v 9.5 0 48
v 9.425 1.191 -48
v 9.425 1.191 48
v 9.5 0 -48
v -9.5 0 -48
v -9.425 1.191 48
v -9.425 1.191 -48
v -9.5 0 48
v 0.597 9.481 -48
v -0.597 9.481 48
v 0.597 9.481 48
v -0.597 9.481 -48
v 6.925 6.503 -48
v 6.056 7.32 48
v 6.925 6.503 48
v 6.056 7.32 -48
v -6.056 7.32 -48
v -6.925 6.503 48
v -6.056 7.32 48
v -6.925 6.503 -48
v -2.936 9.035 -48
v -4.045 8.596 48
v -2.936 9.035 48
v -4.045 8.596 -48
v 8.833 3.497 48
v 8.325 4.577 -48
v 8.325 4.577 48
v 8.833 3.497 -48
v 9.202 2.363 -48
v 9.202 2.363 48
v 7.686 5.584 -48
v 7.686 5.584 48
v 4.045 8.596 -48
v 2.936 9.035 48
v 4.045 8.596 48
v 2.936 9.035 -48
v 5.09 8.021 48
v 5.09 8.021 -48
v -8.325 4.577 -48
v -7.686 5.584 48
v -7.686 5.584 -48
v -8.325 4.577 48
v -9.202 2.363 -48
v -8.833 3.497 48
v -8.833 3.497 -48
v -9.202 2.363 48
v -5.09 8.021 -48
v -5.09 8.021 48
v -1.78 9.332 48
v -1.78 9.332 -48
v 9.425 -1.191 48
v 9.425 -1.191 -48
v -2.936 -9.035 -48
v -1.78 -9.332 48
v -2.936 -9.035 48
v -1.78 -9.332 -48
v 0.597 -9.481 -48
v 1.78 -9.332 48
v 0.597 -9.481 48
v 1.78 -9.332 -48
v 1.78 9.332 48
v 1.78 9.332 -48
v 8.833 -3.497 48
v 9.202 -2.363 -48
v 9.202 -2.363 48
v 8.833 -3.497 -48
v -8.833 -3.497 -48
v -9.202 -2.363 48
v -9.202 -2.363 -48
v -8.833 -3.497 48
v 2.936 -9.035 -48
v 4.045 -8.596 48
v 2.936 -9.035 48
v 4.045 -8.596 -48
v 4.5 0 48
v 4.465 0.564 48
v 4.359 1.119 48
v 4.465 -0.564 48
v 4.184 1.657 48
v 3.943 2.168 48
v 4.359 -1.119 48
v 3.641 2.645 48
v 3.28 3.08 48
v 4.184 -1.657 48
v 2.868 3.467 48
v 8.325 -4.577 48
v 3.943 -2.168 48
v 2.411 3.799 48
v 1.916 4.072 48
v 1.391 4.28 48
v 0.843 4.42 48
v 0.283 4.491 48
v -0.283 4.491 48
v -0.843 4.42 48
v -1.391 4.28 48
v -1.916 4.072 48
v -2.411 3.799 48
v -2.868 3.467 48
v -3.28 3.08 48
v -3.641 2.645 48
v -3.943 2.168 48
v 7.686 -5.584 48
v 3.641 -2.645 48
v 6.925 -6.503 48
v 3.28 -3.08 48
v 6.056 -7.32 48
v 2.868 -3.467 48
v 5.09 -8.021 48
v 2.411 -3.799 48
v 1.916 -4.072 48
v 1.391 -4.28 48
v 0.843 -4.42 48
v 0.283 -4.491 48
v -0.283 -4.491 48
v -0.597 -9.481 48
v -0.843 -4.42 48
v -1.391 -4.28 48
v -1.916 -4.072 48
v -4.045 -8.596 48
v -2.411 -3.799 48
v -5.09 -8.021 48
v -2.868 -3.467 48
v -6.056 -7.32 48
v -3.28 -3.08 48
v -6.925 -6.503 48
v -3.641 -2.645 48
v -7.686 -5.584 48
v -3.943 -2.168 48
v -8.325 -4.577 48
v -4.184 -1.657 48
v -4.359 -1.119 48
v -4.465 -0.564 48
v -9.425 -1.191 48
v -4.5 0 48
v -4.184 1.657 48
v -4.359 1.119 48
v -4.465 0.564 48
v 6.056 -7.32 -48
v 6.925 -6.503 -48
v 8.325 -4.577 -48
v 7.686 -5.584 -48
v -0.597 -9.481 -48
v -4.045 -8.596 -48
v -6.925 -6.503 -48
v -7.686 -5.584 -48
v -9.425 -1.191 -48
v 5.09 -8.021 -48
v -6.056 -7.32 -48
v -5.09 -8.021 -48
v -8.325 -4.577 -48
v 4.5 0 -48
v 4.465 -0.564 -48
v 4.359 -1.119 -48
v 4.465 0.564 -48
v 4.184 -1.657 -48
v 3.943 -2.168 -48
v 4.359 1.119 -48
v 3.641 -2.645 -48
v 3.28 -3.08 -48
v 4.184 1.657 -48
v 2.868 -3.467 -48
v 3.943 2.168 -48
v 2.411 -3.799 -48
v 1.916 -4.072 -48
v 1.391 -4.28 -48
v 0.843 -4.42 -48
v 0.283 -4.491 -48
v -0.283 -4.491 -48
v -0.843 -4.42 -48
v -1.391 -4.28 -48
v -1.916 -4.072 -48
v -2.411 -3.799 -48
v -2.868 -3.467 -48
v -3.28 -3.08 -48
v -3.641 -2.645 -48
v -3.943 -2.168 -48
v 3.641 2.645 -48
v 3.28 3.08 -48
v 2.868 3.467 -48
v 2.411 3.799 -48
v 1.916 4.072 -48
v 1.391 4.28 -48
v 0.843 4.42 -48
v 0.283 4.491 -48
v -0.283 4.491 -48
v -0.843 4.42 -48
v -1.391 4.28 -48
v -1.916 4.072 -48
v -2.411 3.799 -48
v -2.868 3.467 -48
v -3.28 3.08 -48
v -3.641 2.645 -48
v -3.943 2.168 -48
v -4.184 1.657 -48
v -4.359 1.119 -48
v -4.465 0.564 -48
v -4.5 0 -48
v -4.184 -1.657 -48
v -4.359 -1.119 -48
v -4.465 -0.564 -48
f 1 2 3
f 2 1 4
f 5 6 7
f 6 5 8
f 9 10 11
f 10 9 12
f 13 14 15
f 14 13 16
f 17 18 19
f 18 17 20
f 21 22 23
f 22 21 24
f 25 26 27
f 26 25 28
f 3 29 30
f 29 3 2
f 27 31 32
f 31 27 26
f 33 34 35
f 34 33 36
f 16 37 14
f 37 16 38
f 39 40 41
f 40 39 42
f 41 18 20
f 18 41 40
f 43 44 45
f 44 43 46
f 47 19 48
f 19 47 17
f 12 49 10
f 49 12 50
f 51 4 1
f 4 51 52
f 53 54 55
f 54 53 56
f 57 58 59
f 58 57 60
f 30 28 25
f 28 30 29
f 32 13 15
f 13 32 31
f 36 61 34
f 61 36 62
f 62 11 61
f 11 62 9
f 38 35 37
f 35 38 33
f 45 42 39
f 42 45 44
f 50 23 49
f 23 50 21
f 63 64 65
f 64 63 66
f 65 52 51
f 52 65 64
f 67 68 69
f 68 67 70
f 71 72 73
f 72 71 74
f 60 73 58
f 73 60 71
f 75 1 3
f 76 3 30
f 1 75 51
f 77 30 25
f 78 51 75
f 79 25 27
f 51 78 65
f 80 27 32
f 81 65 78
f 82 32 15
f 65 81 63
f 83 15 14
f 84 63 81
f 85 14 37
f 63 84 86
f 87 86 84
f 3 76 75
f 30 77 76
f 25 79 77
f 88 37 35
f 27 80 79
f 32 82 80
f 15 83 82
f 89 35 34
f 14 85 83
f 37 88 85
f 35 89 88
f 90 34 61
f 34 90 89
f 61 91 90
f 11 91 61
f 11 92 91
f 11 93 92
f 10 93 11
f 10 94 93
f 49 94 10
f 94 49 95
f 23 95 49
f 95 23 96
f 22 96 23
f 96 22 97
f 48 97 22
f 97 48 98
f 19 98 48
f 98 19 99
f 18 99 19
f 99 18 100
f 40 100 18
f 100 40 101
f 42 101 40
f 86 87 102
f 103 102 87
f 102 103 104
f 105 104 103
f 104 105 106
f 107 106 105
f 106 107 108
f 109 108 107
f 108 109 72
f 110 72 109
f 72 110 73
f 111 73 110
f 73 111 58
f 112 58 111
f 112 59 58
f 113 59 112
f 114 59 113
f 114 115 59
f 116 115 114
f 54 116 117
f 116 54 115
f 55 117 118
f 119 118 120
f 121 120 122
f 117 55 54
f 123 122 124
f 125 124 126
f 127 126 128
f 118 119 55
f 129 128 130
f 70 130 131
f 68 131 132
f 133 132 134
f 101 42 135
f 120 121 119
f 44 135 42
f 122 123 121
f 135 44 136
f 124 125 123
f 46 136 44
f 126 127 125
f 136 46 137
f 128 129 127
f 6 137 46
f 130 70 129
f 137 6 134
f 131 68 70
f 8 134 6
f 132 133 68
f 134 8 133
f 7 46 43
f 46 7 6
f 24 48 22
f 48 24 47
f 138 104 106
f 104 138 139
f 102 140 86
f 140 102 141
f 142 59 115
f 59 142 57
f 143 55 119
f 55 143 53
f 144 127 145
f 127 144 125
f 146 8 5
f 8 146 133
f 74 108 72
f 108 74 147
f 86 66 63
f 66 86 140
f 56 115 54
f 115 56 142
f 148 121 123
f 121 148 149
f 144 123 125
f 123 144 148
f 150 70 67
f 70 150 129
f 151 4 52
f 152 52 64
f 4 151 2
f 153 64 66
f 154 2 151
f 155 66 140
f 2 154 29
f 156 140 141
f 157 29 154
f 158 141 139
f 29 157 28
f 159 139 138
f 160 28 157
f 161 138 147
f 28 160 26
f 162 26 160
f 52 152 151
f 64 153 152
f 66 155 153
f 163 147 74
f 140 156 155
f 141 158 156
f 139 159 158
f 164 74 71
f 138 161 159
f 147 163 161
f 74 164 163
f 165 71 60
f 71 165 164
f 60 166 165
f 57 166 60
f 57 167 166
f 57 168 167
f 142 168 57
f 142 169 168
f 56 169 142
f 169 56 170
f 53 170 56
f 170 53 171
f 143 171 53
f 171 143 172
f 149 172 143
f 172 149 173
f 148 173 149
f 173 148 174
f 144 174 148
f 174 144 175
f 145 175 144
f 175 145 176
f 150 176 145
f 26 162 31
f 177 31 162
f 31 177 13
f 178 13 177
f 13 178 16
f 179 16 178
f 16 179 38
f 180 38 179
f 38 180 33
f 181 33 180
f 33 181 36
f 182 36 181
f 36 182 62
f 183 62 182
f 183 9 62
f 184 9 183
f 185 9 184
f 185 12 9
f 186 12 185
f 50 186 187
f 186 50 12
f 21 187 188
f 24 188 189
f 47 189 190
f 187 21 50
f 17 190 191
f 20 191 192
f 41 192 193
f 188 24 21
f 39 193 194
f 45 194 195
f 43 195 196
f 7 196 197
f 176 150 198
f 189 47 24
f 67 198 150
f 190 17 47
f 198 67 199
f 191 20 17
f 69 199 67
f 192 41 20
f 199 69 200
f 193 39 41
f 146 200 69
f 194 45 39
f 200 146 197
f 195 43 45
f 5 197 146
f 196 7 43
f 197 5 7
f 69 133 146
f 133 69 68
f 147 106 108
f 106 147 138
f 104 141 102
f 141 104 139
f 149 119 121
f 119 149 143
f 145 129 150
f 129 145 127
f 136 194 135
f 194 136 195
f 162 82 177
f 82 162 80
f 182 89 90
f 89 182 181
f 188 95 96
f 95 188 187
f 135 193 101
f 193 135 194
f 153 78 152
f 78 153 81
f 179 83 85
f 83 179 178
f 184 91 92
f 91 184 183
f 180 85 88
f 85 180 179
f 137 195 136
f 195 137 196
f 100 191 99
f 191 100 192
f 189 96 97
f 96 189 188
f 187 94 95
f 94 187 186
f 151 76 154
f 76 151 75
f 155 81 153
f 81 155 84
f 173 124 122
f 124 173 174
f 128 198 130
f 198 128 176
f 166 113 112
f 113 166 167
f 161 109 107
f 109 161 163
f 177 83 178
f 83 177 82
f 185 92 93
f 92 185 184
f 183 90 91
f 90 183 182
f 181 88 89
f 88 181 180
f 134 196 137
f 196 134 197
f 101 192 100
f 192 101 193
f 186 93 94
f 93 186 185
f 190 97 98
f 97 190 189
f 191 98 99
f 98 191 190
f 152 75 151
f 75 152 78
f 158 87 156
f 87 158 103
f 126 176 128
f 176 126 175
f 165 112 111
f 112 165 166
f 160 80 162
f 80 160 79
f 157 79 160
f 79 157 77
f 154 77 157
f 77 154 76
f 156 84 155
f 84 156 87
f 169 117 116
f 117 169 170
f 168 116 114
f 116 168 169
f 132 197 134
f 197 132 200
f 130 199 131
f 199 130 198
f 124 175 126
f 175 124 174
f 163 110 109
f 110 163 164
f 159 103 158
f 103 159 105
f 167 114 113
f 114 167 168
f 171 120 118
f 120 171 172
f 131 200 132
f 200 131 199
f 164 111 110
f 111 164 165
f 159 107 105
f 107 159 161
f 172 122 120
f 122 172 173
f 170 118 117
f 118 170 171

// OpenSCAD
$fn = 50;


difference() {
	union() {
		translate(v = [0, 0, -48.0000000000]) {
			cylinder(h = 96, r = 9.5000000000);
		}
	}
	union() {
		translate(v = [0, 0, -100.0000000000]) {
			cylinder(h = 200, r = 4.5000000000);
		}
	}
}
